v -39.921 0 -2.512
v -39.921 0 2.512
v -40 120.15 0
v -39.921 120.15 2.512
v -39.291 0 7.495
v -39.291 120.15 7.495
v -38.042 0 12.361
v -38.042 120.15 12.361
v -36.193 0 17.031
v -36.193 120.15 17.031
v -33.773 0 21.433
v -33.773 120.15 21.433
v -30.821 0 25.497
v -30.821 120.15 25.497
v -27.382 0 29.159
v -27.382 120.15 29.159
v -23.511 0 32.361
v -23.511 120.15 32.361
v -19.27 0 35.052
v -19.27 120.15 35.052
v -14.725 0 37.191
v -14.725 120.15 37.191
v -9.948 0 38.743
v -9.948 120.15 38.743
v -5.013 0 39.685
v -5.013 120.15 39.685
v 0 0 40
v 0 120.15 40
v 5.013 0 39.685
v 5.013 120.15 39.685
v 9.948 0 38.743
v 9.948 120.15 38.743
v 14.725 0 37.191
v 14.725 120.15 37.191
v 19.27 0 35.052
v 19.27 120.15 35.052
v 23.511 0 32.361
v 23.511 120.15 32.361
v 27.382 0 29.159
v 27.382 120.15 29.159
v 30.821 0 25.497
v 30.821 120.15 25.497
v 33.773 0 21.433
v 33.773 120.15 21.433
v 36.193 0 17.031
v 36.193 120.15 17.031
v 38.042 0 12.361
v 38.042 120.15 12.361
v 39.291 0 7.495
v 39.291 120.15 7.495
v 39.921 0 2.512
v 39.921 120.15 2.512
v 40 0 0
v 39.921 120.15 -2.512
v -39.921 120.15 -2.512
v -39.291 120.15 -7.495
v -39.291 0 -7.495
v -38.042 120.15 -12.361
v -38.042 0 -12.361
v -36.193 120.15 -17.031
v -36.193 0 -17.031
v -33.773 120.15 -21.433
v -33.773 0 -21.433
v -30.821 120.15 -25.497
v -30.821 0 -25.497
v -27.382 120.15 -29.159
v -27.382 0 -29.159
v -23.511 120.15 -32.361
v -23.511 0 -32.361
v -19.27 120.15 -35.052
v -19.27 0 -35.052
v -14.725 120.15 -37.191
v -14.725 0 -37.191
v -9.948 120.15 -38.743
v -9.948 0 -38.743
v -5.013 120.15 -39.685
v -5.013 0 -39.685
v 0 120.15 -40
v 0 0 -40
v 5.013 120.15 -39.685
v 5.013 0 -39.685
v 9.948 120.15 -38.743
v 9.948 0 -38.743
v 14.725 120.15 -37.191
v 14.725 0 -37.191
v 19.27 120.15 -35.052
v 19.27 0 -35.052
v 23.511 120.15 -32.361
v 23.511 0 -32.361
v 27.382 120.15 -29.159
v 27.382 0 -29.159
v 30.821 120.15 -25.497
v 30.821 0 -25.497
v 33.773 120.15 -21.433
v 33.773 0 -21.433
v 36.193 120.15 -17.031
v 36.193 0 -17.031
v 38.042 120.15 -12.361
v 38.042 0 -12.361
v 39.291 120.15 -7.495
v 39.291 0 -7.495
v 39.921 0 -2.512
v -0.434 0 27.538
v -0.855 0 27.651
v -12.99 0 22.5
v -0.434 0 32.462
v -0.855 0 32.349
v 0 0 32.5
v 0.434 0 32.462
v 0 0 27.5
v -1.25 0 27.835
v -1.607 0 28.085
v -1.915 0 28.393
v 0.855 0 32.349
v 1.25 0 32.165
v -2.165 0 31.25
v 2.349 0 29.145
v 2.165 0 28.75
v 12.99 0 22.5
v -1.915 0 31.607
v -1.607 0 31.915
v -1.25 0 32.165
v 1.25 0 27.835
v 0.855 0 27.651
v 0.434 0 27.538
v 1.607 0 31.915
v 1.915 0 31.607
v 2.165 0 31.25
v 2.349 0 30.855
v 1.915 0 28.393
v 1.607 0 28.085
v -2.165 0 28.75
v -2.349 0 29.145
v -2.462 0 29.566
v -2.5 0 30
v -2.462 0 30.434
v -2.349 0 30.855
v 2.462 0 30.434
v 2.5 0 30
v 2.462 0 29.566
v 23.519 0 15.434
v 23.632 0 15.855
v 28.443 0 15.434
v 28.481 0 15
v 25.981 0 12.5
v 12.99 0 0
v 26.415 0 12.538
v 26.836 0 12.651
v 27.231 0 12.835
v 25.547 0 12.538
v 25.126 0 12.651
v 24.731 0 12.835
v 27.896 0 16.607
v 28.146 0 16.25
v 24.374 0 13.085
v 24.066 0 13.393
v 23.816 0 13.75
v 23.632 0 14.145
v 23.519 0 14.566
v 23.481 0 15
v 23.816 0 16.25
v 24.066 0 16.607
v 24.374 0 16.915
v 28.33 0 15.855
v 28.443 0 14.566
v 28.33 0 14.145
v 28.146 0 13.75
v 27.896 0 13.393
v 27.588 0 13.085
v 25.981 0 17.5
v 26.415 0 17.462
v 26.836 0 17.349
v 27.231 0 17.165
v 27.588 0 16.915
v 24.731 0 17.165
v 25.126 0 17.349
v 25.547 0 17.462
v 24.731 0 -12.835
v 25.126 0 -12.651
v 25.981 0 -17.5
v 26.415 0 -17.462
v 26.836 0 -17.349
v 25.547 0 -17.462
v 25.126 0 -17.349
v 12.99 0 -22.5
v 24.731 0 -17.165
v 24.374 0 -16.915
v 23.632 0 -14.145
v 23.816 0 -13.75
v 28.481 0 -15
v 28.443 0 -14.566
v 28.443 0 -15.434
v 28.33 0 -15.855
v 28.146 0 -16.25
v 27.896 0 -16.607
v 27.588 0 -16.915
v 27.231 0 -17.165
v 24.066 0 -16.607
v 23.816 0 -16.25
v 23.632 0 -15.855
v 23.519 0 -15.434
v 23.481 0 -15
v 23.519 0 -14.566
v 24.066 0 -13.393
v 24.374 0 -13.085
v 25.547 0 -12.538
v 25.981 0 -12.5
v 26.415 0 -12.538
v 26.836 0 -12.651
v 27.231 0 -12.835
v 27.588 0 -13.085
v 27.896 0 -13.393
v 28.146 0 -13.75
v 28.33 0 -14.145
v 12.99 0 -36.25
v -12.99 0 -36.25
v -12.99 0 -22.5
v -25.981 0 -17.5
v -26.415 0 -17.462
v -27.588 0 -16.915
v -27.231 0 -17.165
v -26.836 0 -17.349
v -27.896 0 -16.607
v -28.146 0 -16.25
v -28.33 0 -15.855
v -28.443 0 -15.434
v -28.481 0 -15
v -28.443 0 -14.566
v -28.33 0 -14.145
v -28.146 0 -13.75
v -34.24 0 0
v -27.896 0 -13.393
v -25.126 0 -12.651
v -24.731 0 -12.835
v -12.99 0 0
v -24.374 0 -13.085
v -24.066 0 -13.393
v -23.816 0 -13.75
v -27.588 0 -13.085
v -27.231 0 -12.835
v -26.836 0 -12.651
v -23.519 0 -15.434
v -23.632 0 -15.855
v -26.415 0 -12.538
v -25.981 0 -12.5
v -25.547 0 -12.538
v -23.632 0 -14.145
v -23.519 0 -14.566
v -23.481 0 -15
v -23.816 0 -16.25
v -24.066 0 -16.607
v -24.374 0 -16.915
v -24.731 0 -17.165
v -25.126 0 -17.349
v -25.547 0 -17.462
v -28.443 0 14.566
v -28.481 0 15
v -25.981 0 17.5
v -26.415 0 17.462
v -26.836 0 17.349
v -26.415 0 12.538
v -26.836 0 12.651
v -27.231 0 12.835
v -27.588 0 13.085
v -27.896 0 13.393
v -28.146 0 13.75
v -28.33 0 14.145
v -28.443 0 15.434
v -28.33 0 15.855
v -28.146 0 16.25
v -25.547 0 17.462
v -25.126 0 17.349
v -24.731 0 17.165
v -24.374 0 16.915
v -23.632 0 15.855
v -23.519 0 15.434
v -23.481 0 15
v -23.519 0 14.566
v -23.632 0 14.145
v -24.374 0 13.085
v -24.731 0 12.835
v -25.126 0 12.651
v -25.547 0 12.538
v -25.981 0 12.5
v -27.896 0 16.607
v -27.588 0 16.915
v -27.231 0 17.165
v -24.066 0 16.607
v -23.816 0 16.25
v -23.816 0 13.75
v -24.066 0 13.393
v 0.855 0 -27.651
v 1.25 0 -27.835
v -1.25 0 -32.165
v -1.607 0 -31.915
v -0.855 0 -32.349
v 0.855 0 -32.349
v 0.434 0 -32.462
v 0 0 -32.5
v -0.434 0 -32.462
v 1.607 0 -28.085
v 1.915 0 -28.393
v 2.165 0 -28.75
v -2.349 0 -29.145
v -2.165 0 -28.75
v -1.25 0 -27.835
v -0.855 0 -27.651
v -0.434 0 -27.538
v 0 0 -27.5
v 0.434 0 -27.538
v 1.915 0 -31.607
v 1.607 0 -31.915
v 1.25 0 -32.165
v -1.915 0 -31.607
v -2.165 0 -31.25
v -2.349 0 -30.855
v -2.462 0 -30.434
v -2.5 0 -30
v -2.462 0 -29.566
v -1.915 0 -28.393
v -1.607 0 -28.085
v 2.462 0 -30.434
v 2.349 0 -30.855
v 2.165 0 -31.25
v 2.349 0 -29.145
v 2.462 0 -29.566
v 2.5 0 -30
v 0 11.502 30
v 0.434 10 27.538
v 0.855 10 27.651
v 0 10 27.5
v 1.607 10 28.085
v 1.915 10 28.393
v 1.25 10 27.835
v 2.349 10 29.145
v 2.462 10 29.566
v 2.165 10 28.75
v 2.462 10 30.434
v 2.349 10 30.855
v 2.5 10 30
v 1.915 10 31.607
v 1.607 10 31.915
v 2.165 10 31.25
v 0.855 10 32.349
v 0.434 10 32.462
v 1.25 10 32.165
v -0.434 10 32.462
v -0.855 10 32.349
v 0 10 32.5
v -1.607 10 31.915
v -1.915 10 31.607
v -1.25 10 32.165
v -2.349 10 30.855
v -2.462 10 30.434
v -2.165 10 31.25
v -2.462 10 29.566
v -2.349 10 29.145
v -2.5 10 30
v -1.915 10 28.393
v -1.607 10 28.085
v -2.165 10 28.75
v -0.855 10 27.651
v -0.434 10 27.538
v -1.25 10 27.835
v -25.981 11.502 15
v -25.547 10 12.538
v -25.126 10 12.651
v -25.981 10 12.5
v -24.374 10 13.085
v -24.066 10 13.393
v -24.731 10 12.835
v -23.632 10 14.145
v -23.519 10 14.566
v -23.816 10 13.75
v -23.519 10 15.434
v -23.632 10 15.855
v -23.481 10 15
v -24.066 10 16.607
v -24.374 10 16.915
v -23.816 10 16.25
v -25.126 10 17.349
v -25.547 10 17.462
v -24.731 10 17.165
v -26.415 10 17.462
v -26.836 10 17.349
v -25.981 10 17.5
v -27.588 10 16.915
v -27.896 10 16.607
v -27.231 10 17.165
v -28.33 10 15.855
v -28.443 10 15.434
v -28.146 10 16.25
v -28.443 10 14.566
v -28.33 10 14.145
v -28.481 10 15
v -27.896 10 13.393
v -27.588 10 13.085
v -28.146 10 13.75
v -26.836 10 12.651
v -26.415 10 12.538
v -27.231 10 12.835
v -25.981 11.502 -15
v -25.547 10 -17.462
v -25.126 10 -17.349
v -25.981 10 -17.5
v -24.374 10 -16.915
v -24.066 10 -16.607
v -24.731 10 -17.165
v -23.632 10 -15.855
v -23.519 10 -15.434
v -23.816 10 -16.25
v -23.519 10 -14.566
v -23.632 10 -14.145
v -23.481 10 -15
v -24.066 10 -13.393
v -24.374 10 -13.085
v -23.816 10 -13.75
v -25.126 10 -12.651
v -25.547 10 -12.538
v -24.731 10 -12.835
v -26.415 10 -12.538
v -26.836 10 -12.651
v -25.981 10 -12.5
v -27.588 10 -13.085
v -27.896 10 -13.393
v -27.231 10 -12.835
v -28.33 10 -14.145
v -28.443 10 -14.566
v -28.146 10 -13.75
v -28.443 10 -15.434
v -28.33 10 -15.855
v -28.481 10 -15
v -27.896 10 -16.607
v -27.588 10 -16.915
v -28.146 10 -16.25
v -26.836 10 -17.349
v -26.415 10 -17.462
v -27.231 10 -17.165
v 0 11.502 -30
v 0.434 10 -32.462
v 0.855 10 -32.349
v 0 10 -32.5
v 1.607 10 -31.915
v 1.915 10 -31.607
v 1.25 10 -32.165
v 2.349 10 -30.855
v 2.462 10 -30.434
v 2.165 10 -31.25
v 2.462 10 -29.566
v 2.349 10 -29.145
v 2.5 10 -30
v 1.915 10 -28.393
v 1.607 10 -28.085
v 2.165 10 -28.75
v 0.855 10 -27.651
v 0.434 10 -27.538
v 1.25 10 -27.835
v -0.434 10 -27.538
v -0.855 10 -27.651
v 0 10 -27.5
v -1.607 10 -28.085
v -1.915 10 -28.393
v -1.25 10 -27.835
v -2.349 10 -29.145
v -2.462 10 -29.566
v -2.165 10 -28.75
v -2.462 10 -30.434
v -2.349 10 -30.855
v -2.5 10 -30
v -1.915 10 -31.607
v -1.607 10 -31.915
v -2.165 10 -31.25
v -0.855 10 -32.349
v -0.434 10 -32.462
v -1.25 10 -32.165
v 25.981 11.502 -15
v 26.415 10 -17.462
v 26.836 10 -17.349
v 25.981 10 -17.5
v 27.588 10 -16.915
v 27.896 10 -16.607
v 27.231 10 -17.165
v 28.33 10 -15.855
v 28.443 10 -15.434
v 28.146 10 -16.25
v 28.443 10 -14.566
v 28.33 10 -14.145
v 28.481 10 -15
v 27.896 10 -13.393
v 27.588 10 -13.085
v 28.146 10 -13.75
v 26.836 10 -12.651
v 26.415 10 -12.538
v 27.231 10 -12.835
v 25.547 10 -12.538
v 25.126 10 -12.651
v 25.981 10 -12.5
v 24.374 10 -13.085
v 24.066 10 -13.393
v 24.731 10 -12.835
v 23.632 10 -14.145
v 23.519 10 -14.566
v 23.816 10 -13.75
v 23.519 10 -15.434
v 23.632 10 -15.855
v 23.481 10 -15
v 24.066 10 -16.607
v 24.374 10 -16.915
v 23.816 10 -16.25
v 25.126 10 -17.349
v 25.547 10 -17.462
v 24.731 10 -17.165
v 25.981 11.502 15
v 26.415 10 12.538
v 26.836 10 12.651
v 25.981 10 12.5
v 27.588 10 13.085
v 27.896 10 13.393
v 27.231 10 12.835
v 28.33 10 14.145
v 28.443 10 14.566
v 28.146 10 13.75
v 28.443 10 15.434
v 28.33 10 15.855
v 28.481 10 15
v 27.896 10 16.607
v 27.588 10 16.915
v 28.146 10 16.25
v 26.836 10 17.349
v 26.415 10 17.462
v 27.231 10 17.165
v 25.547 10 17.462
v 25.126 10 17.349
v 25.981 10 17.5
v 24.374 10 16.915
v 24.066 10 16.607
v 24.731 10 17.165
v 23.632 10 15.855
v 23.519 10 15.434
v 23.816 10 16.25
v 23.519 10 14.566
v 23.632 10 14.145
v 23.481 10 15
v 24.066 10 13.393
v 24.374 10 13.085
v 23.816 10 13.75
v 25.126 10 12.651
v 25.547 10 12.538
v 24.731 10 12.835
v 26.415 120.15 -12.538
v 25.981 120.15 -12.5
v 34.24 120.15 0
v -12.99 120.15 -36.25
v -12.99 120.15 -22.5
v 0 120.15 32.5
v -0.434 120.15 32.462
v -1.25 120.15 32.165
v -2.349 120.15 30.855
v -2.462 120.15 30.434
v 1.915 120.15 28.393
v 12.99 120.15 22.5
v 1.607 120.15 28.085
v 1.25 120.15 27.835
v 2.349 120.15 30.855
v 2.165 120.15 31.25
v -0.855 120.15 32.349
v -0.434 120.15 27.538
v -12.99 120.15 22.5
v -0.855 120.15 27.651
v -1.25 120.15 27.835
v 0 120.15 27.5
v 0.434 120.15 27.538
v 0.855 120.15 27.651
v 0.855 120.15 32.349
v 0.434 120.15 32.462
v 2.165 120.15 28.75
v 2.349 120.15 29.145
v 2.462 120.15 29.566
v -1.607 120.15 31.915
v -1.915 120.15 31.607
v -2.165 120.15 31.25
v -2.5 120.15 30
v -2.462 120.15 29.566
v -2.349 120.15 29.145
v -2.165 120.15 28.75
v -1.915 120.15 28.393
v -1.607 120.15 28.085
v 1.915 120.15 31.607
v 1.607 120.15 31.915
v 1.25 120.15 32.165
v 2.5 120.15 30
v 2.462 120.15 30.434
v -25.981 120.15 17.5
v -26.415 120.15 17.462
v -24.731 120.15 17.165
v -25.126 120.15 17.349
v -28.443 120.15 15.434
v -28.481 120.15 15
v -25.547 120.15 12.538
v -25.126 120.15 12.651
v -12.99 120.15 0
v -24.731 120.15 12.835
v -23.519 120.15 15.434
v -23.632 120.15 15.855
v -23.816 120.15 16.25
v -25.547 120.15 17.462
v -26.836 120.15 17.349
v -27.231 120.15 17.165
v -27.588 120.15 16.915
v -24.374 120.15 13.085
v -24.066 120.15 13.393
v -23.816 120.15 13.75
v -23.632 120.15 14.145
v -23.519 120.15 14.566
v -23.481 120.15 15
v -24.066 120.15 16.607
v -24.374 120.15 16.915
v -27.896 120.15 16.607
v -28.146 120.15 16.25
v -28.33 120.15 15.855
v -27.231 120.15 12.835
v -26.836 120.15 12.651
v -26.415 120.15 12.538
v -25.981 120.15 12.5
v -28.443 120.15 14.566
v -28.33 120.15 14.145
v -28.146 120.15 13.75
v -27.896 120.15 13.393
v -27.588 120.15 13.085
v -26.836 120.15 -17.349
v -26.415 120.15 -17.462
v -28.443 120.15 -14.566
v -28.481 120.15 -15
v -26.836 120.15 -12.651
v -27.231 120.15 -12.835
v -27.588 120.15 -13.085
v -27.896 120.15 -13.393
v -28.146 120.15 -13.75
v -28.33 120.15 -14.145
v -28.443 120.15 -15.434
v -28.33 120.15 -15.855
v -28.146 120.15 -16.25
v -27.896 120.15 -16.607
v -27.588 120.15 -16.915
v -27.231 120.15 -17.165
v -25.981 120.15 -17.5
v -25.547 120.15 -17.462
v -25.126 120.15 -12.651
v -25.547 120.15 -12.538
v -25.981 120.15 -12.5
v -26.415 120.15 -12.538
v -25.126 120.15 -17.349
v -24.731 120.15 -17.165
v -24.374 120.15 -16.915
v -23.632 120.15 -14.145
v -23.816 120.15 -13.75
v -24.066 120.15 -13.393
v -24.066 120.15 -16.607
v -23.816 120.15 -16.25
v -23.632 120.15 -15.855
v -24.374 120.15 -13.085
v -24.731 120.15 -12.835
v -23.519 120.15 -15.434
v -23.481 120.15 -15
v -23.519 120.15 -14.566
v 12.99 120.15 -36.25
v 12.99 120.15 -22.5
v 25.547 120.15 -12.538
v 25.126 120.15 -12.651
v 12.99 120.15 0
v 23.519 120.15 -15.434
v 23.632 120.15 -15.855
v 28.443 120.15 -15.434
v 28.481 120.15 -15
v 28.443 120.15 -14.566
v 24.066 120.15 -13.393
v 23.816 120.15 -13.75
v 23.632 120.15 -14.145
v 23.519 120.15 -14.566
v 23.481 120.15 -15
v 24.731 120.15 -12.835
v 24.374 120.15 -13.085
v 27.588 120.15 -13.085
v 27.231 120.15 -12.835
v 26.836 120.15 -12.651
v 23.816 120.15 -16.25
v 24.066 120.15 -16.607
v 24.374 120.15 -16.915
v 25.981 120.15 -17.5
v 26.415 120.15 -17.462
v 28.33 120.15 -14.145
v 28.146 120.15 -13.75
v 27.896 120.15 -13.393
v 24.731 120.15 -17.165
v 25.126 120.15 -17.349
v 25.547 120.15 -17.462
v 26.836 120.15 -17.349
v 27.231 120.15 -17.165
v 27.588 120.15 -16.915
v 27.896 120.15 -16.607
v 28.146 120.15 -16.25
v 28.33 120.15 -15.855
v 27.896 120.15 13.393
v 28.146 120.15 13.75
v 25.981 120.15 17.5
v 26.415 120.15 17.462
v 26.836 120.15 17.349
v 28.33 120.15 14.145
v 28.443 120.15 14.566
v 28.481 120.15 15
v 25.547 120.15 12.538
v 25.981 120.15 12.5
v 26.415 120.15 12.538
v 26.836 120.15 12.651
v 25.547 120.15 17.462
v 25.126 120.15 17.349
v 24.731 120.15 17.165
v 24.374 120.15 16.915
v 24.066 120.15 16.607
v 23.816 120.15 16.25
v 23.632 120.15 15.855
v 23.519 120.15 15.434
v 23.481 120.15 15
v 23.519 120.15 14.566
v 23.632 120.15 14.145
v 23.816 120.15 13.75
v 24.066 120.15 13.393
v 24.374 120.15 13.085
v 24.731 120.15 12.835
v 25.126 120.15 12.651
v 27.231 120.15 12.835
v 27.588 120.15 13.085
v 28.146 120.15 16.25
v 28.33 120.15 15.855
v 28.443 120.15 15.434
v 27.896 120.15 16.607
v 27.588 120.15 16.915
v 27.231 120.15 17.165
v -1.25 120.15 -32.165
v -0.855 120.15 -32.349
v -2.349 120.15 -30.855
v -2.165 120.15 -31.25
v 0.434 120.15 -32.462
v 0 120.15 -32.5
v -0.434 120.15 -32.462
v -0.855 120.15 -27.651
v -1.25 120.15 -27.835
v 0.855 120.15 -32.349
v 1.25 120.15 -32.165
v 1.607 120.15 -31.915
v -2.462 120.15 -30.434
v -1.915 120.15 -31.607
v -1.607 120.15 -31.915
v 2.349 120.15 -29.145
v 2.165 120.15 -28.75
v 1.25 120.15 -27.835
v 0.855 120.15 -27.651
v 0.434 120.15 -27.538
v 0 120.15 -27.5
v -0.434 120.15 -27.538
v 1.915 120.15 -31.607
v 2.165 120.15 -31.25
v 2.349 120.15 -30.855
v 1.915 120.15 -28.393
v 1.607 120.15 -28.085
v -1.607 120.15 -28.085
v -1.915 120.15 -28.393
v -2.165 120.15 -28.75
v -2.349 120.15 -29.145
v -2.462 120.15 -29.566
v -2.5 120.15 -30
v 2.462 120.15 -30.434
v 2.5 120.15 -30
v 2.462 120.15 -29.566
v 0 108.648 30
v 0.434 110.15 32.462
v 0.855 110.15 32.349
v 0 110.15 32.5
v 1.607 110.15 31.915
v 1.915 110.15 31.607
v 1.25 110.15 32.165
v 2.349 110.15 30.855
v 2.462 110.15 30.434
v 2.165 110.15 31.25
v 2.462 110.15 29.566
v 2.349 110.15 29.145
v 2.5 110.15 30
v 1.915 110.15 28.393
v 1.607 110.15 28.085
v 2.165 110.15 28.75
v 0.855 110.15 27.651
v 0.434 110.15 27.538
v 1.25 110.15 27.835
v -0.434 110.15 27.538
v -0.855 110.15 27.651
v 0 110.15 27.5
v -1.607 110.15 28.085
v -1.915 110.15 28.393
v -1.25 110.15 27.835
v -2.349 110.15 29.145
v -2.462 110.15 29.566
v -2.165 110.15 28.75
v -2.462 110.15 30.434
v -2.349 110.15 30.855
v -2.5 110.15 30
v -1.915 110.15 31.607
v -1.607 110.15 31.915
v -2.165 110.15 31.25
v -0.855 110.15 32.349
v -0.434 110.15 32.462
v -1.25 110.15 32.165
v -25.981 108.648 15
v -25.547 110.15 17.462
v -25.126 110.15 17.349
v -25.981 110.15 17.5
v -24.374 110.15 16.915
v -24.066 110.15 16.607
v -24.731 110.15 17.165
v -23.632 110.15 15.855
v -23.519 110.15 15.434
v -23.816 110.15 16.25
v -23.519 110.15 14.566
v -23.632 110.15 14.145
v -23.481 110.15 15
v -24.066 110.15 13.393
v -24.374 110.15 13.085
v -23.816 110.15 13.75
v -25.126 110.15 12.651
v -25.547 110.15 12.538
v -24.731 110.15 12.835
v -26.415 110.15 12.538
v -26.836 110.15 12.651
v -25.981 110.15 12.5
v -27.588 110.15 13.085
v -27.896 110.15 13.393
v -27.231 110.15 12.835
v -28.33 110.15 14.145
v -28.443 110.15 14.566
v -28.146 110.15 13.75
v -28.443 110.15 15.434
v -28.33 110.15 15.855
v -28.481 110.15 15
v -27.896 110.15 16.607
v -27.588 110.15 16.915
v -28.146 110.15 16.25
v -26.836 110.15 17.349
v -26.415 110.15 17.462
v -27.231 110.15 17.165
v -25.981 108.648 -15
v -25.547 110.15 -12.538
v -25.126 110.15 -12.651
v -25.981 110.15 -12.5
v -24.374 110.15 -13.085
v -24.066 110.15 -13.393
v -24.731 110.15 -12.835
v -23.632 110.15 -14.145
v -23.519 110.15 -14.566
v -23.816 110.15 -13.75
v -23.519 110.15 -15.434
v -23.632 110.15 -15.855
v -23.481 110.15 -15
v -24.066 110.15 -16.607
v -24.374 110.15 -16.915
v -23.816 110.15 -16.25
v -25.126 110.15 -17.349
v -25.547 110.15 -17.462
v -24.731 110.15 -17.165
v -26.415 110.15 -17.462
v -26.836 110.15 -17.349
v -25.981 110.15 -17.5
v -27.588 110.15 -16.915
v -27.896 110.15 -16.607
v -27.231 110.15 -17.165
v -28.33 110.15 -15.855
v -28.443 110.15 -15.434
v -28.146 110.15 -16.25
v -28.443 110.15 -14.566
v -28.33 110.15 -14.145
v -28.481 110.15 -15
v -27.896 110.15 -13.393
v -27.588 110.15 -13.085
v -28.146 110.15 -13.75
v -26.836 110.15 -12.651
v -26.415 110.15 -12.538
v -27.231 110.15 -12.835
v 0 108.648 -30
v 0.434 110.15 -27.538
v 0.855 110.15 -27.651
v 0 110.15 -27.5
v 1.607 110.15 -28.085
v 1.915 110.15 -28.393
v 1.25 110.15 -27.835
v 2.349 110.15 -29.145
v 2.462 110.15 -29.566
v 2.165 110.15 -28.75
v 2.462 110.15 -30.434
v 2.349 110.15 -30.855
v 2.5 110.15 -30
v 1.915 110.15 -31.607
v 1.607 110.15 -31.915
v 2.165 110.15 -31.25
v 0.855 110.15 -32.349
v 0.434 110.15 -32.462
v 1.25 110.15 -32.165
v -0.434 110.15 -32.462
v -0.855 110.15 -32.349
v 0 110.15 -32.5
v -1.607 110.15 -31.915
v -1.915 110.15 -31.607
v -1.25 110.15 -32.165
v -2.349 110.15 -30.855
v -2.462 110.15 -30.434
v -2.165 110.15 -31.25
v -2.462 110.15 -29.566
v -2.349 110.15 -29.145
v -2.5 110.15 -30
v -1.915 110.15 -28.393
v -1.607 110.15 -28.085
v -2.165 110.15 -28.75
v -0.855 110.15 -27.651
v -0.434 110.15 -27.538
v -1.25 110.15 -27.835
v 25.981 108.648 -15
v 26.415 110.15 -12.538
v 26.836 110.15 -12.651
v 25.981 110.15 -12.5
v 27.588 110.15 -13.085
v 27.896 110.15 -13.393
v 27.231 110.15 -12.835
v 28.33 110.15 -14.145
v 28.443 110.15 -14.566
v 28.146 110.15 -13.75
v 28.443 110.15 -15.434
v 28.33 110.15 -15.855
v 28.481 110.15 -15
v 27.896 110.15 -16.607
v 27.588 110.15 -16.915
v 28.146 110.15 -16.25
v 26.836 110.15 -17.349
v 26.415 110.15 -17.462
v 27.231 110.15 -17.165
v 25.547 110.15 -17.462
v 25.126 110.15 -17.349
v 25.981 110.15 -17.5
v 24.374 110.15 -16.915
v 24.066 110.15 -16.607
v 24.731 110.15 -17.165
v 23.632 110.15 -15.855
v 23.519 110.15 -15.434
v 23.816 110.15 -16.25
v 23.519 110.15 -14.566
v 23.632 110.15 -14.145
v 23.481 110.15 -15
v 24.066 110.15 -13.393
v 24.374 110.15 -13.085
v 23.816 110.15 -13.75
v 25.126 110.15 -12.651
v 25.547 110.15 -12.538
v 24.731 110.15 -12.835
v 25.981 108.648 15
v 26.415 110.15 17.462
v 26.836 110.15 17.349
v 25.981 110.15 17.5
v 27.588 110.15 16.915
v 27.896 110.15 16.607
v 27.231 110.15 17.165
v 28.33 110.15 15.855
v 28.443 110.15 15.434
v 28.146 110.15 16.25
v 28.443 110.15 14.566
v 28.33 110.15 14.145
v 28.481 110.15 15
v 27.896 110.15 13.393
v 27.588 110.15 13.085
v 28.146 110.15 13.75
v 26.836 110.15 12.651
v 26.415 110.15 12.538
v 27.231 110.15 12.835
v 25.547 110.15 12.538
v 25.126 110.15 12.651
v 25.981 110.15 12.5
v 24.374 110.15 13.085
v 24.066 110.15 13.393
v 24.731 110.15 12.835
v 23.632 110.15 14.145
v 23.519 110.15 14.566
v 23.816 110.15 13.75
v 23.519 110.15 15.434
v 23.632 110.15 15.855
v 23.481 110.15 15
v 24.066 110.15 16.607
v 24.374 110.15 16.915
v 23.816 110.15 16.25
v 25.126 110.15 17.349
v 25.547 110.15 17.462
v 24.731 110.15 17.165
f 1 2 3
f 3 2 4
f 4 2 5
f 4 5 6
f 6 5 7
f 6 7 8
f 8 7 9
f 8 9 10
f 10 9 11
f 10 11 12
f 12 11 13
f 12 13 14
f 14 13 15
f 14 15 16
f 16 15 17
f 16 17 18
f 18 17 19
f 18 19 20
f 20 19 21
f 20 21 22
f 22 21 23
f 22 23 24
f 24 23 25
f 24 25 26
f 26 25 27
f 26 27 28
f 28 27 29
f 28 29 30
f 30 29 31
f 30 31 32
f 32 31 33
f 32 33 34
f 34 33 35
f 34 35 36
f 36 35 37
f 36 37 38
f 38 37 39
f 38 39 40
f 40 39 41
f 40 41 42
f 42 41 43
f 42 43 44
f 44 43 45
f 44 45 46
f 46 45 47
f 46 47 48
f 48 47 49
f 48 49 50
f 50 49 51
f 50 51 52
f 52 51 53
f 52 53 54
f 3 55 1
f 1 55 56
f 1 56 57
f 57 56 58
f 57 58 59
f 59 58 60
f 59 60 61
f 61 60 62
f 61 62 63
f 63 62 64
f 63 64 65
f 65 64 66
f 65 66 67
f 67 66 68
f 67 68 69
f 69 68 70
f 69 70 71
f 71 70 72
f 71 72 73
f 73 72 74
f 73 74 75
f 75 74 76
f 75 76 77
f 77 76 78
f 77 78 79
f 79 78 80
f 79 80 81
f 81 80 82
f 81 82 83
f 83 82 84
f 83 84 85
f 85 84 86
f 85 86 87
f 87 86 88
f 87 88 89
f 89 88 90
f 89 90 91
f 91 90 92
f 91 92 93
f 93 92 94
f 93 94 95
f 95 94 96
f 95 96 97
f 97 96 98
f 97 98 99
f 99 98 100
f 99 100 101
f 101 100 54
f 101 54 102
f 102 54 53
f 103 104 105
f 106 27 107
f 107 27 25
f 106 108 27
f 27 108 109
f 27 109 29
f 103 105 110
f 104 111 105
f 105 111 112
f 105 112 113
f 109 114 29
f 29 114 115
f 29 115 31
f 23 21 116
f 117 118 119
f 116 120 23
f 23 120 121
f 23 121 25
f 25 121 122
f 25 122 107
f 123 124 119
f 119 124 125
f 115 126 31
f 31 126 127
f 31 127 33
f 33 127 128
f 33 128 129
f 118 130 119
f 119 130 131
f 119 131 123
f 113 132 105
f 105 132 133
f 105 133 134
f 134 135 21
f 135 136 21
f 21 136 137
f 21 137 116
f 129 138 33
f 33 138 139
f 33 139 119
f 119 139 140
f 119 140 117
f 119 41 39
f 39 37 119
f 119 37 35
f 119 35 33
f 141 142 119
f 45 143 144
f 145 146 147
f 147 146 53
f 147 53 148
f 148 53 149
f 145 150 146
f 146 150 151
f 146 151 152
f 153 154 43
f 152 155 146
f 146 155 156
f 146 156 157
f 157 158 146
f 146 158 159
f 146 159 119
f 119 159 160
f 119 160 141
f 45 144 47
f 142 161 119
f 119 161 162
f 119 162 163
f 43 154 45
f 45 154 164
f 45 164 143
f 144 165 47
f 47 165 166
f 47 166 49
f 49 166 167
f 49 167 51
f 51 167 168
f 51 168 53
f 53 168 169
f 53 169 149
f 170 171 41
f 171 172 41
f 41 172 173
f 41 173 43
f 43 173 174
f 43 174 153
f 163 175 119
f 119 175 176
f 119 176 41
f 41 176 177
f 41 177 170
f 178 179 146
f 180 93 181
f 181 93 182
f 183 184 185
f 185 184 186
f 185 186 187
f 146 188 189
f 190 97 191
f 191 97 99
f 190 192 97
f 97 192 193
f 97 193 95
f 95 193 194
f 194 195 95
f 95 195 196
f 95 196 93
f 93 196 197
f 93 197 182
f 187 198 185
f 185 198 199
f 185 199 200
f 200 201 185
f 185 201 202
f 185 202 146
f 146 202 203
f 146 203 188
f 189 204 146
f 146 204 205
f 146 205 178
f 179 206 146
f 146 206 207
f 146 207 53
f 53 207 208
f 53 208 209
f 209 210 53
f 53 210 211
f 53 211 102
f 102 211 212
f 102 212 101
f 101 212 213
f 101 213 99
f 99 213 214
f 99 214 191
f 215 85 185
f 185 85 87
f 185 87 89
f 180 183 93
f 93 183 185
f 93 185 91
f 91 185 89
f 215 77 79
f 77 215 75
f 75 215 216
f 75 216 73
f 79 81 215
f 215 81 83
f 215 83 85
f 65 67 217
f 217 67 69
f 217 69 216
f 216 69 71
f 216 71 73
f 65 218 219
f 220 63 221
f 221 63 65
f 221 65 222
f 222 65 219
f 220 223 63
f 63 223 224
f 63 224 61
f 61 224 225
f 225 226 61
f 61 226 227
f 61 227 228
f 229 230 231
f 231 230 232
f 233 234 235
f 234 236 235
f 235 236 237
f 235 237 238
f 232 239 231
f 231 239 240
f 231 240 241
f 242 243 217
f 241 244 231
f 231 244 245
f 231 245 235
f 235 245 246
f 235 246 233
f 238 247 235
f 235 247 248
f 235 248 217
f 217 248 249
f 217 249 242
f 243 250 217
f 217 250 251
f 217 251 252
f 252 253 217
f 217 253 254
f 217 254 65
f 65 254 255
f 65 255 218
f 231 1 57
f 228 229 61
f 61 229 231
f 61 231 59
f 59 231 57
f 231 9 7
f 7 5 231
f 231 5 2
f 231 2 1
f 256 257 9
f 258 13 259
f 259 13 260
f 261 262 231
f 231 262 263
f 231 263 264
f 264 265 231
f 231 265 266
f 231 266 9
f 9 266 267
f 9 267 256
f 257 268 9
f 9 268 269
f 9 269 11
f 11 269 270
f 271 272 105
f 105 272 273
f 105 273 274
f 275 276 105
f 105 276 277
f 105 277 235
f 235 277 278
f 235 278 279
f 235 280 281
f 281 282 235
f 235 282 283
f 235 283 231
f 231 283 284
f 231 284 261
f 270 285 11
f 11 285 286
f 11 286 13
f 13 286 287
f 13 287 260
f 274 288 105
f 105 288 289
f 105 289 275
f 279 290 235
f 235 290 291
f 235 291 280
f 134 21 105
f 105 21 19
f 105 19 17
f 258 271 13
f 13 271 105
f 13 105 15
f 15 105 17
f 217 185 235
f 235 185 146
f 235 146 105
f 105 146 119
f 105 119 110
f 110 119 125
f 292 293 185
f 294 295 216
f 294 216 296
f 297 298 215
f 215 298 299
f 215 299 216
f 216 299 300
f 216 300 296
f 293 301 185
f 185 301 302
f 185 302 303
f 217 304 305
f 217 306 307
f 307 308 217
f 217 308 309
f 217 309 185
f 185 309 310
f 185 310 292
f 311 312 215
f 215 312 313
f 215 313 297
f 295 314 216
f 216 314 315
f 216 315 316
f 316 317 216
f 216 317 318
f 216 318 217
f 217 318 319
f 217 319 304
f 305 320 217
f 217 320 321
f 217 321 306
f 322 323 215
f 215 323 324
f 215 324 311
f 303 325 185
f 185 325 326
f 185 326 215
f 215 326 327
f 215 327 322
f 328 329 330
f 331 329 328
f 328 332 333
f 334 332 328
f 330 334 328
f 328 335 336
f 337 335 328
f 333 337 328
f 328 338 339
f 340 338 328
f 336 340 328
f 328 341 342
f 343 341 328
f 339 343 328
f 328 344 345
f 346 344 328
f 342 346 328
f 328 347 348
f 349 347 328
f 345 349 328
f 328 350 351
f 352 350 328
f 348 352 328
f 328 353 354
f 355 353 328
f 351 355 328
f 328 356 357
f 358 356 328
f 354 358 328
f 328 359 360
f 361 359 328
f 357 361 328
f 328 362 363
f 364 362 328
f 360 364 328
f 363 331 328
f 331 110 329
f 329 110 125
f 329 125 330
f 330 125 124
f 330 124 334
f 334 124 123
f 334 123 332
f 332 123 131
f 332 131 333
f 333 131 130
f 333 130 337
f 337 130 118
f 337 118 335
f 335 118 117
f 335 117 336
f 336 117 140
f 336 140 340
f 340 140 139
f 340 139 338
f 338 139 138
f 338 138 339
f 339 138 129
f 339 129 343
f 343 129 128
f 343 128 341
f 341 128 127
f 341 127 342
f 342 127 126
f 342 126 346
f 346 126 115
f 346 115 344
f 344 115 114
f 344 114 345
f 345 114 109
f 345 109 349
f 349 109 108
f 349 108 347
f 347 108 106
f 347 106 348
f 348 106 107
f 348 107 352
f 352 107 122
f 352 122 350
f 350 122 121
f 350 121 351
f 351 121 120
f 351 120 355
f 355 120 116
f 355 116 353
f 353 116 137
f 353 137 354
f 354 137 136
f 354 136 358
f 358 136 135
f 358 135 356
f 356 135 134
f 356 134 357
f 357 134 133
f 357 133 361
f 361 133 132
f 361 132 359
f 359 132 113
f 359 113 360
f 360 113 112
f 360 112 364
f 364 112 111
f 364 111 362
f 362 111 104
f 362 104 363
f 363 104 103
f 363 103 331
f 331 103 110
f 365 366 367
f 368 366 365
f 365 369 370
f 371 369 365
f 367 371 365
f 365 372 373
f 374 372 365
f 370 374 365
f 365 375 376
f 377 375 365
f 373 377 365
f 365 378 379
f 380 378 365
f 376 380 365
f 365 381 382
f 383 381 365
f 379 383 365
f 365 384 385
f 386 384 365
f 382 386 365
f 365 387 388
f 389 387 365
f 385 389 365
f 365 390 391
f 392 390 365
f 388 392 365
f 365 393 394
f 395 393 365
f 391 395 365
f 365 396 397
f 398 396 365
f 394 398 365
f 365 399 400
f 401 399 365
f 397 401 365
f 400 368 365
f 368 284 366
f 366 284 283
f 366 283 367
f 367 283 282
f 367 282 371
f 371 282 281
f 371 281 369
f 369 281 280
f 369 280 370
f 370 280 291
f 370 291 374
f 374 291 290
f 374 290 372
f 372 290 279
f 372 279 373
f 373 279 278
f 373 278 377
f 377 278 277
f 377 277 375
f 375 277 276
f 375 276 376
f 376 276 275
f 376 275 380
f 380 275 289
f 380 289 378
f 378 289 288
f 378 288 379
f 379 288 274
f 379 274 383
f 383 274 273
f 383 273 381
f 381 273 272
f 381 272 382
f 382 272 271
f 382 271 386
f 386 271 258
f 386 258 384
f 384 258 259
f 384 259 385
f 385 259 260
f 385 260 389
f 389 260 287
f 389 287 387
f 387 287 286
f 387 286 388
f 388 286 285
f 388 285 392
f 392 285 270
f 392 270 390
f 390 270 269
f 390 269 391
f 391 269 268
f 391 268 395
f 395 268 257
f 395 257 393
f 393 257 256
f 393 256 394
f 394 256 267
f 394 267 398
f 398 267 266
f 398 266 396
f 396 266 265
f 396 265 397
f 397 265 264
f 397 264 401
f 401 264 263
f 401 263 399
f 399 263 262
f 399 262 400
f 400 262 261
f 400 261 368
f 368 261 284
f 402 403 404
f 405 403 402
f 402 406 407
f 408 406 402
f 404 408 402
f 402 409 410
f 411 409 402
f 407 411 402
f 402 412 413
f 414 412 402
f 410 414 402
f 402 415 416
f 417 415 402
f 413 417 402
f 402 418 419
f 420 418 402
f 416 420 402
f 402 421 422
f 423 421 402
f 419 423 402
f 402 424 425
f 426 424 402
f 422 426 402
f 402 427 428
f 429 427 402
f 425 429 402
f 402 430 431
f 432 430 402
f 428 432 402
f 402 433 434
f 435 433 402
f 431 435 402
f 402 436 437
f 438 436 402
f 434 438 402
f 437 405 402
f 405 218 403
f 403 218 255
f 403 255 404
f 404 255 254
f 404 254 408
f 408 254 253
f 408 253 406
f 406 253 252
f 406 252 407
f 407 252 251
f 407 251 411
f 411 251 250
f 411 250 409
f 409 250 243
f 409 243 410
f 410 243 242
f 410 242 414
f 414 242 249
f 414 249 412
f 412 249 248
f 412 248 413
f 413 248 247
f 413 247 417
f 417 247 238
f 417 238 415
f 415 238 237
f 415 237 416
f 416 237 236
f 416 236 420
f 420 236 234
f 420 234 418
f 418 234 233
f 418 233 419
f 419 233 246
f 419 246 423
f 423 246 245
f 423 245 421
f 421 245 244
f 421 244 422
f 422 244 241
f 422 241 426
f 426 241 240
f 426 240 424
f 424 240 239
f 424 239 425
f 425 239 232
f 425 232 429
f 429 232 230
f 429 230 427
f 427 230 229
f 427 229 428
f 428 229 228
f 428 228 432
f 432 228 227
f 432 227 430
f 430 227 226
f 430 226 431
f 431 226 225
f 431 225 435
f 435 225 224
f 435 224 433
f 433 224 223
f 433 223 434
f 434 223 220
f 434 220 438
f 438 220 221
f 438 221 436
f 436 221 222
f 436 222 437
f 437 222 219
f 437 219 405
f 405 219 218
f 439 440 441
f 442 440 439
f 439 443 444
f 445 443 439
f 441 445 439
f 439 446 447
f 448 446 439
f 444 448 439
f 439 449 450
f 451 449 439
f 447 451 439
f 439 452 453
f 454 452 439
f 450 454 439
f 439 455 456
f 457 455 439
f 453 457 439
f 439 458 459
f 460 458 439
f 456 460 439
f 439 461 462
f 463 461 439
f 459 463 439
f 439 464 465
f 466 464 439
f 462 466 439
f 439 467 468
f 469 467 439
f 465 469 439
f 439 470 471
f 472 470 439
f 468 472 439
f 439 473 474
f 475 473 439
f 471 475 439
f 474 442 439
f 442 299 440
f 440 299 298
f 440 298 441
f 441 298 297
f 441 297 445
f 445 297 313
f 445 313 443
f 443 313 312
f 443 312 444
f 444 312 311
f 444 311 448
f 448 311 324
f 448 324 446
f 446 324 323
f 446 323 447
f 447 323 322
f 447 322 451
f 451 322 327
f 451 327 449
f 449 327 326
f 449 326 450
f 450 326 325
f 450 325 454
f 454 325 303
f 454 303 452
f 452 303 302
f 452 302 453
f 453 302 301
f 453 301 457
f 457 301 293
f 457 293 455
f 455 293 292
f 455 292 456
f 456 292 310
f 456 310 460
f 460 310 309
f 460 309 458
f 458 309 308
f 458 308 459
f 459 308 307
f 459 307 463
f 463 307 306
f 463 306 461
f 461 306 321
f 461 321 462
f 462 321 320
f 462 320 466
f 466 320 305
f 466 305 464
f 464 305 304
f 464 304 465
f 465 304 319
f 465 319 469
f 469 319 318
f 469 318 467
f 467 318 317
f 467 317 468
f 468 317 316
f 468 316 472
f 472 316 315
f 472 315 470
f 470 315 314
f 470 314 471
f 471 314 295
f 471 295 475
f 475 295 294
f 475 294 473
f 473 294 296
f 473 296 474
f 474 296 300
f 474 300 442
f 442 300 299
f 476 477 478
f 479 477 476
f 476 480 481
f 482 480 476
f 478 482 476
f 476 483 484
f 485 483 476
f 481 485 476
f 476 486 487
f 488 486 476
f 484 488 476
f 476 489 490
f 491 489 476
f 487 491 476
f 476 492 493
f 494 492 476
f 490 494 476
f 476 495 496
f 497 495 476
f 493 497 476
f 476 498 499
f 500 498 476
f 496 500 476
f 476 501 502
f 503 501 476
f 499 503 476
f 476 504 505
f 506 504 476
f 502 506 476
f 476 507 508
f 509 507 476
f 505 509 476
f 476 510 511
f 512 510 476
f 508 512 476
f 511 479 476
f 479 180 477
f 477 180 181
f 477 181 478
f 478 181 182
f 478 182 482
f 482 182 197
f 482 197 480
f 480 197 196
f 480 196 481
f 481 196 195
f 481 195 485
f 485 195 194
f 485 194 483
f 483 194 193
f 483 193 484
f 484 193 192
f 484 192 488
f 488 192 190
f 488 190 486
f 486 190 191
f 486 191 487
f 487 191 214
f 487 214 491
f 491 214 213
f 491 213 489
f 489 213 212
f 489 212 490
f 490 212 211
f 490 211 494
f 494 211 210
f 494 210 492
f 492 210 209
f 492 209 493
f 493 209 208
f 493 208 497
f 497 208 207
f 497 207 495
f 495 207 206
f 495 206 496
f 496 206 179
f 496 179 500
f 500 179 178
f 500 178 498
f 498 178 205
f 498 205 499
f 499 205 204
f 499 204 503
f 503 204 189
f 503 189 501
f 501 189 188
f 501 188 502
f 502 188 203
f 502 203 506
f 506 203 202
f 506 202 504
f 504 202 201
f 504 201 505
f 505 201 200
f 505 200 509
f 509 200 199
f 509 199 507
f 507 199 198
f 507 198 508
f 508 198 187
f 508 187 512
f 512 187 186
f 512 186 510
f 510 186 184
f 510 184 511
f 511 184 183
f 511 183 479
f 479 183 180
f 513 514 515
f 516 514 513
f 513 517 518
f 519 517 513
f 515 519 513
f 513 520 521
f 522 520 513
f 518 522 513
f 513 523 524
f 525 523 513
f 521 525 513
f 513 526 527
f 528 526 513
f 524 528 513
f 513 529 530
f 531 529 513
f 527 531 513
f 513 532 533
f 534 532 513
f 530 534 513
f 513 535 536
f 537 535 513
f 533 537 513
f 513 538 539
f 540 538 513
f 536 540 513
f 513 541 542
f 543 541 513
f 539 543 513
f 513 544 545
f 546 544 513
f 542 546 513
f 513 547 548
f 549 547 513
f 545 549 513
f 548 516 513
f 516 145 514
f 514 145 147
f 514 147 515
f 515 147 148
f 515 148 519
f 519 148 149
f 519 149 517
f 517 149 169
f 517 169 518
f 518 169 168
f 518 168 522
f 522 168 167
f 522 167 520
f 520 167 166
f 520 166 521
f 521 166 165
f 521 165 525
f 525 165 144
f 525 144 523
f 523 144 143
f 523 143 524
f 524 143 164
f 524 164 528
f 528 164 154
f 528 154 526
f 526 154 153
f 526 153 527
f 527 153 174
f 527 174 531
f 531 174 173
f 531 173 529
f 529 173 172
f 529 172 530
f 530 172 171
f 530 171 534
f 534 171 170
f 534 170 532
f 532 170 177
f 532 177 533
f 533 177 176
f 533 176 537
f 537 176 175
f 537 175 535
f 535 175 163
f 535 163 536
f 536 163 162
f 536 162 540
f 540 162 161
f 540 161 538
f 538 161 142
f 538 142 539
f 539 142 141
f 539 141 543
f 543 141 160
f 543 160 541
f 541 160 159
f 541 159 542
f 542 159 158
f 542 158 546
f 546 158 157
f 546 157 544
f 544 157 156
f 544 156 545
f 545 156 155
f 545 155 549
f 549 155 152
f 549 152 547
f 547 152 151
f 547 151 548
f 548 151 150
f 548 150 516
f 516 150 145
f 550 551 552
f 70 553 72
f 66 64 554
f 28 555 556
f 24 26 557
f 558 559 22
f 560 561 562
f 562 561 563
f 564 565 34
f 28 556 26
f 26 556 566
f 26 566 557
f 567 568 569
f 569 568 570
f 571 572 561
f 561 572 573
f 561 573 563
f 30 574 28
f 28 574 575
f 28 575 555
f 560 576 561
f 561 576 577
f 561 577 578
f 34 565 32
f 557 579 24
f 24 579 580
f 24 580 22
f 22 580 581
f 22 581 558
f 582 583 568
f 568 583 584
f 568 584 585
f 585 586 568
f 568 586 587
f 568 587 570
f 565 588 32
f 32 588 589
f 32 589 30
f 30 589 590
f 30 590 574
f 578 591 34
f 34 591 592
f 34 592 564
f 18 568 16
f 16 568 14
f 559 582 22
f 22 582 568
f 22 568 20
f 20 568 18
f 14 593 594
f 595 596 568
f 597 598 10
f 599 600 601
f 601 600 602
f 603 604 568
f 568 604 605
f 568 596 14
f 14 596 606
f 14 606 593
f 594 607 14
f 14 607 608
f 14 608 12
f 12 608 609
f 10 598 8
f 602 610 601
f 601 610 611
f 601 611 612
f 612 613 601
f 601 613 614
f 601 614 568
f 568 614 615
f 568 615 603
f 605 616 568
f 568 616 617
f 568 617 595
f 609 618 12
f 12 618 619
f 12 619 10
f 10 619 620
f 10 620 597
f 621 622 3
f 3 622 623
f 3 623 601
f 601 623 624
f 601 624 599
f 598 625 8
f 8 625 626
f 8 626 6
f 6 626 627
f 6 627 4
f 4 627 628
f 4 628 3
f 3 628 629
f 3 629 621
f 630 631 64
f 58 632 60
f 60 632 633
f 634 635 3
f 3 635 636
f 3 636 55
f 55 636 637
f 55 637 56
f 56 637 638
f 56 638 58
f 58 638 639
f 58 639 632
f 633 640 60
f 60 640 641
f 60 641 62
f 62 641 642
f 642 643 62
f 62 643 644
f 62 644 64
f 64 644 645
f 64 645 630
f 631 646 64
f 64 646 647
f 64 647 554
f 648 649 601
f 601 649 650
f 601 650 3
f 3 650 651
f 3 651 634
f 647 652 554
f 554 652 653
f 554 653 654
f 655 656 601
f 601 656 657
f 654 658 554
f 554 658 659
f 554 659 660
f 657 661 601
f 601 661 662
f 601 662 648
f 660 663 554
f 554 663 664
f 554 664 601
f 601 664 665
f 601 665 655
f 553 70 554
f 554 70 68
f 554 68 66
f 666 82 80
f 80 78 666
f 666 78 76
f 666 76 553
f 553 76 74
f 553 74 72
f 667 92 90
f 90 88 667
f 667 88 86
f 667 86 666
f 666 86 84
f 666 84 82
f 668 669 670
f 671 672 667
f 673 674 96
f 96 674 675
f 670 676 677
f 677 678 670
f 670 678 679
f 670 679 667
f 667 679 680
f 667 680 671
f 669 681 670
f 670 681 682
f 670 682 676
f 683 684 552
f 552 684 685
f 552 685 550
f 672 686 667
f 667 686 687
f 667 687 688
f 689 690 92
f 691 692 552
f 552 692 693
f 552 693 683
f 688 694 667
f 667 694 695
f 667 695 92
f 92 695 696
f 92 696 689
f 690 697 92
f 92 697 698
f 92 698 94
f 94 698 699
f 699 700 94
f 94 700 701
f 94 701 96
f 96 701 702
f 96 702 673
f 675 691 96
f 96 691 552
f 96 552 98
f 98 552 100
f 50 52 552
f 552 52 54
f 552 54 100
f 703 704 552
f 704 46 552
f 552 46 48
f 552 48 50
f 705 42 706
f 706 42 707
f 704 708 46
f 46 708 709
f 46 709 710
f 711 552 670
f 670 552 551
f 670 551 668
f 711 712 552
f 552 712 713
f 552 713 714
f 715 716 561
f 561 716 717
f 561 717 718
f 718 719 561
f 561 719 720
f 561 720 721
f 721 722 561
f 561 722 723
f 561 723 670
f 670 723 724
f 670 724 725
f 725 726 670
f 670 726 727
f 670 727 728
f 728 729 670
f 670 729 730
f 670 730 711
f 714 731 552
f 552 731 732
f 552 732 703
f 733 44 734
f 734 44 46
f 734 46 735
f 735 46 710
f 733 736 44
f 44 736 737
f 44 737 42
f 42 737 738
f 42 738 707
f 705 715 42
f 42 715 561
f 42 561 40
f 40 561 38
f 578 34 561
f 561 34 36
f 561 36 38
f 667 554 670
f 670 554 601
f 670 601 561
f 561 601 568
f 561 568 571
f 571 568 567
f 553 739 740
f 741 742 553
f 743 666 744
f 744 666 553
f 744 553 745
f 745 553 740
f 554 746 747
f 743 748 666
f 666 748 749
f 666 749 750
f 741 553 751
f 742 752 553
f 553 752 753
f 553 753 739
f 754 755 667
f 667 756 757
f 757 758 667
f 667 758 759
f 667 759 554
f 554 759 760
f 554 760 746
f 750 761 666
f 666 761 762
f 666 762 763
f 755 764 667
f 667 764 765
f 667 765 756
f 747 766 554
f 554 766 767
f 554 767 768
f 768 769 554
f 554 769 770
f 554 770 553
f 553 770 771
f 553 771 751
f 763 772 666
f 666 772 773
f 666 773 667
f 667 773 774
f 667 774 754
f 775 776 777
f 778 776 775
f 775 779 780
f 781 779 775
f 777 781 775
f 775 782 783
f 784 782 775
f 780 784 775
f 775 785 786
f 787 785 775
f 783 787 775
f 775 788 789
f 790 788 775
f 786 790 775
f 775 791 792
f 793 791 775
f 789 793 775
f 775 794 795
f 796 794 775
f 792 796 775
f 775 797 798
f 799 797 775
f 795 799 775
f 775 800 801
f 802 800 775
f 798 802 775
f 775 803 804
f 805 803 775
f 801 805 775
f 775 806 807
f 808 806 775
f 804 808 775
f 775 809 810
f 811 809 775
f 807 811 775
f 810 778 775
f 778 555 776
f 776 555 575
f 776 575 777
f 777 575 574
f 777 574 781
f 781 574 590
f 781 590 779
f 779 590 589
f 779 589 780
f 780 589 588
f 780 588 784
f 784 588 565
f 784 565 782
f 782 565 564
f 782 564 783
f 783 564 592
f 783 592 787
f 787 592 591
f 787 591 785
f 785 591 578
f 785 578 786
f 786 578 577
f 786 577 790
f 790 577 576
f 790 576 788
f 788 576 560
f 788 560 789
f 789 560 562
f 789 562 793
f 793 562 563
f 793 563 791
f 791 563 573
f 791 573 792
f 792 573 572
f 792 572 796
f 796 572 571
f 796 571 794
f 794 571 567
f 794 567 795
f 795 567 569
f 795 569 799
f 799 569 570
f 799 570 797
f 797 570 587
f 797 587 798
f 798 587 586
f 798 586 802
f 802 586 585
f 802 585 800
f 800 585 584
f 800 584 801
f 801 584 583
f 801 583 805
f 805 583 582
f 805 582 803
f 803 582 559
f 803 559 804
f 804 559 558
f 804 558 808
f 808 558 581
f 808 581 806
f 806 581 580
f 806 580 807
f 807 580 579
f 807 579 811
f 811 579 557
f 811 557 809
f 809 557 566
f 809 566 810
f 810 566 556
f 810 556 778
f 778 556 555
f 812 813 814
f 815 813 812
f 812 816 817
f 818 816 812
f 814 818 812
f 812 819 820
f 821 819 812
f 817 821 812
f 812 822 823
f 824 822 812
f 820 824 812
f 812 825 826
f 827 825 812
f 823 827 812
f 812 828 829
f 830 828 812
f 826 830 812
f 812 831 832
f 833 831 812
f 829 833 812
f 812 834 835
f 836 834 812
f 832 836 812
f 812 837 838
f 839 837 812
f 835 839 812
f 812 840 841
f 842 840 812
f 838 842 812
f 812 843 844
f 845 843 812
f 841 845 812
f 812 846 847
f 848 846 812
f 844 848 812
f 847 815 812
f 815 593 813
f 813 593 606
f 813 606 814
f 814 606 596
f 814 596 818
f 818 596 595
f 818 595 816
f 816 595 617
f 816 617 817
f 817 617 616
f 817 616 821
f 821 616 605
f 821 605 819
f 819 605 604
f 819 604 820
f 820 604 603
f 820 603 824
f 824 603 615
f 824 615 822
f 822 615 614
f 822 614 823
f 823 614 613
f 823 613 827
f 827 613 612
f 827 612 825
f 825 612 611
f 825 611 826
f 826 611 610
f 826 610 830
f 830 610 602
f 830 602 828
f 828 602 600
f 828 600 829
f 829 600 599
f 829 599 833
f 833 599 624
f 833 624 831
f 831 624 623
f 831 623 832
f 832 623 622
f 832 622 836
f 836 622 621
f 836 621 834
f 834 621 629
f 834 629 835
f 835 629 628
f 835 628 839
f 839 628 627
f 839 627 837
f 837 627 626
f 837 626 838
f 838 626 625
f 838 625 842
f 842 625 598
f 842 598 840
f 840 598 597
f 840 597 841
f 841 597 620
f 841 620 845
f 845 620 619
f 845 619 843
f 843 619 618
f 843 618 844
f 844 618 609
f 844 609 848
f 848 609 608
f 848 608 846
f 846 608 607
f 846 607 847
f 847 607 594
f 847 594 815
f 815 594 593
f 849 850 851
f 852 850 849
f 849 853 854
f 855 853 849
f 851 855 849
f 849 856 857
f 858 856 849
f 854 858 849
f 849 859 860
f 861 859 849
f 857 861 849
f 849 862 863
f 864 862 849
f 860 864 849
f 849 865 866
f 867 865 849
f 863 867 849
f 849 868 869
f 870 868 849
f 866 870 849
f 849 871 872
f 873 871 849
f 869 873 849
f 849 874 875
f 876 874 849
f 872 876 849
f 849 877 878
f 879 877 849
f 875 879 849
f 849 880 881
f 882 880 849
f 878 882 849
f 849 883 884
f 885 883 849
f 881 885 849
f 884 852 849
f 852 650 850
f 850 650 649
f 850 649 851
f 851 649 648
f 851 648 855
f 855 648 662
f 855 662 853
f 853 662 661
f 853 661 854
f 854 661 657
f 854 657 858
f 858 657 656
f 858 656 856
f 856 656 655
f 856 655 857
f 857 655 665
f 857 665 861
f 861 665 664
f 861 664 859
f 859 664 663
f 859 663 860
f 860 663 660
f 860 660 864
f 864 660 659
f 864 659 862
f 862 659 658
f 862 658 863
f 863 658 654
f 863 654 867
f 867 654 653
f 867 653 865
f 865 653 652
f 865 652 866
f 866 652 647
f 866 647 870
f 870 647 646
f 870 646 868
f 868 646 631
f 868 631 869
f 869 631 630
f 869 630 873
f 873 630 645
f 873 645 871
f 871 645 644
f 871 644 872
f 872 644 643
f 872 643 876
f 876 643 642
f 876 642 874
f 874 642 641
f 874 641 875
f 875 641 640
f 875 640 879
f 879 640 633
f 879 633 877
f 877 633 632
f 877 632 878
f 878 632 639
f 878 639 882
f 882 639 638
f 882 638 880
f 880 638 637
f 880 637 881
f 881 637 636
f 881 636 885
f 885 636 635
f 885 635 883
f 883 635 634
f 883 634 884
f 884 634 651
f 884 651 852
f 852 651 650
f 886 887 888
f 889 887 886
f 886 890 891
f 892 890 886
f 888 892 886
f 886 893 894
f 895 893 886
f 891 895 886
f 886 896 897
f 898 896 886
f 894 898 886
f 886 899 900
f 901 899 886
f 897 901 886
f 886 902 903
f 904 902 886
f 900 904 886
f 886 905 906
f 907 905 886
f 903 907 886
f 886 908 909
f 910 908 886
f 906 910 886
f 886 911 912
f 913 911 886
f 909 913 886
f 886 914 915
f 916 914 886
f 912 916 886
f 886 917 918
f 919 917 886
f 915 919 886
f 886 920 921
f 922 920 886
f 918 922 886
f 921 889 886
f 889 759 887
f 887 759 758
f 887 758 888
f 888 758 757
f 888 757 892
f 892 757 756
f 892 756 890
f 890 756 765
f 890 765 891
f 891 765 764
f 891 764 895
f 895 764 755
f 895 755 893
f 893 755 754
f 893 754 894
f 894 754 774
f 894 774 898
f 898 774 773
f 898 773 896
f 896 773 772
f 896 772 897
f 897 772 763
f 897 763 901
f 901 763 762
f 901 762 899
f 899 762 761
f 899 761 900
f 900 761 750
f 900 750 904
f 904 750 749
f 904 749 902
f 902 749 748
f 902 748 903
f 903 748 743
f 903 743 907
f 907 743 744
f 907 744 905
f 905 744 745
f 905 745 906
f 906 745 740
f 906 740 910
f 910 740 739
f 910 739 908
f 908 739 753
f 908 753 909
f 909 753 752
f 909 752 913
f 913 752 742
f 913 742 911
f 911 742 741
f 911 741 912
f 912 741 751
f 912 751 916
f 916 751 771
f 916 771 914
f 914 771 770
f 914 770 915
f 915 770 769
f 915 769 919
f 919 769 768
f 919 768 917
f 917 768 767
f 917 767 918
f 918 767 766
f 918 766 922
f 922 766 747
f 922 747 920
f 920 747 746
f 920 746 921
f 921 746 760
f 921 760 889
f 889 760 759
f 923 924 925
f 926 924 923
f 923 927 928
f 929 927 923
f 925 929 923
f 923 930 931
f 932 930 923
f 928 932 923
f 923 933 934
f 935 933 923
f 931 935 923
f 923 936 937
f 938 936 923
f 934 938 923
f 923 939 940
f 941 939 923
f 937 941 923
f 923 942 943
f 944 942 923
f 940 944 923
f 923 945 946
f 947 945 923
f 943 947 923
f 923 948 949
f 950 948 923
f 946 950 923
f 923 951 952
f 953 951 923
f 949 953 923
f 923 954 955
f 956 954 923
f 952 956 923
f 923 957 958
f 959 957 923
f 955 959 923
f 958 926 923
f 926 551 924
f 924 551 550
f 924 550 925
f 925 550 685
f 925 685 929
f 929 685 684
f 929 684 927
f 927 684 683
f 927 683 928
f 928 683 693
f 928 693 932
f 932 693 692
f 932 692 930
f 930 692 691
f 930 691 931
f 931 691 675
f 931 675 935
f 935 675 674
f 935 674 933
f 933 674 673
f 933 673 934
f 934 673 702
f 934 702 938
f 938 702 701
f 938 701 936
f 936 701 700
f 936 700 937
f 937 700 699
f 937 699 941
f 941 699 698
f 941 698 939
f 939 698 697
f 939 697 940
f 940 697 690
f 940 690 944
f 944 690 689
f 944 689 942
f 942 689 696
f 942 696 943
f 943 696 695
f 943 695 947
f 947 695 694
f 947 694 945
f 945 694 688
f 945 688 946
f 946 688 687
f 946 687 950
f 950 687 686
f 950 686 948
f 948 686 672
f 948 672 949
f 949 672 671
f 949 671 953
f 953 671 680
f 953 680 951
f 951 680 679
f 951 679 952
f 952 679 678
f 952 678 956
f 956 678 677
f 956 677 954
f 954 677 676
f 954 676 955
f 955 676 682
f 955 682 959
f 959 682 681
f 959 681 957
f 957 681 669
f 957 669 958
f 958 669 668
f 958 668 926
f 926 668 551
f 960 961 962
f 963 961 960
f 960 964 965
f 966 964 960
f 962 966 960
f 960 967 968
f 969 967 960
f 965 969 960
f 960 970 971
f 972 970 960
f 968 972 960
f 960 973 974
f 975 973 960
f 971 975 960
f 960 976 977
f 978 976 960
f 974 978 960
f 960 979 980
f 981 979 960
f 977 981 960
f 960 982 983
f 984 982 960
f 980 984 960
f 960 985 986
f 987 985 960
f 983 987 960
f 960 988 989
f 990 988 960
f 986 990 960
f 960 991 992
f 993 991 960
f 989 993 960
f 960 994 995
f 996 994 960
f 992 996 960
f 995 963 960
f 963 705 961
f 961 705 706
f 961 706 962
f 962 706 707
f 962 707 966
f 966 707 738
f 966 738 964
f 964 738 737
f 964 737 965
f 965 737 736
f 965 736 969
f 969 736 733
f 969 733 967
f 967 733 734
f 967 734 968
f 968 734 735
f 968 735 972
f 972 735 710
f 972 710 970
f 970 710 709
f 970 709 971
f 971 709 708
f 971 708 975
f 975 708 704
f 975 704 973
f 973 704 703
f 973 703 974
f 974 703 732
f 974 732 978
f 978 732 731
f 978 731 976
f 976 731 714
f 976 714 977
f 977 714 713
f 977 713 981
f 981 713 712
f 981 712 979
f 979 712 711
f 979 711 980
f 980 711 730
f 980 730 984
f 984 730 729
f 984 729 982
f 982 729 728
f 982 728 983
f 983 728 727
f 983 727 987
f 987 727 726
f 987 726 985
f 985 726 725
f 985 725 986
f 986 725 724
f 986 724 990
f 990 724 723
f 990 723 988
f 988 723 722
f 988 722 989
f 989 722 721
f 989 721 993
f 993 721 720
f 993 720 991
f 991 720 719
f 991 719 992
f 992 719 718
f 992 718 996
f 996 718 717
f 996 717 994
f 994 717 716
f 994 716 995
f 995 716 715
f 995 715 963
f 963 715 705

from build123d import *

# Parameters (mm, degrees)
SKETCH1_R                            = 40
BOSS_EXTRUDE1_DEPTH                  = 60.075
TAP_DRILL_FOR_M6X1_0_TAP1_AT_2_COUNT = 2
TAP_DRILL_FOR_M6X1_0_TAP1_AT_2_PITCH = 30
TAP_DRILL_FOR_M6X1_0_TAP1_AT_3_COUNT = 2
TAP_DRILL_FOR_M6X1_0_TAP1_AT_3_PITCH = 51.961524227
TAP_DRILL_FOR_M6X1_0_TAP1_AT_4_COUNT = 2
TAP_DRILL_FOR_M6X1_0_TAP1_AT_4_PITCH = 60
TAP_DRILL_FOR_M6X1_0_TAP1_AT_5_COUNT = 2
TAP_DRILL_FOR_M6X1_0_TAP1_AT_5_PITCH = 51.961524227
TAP_DRILL_FOR_M6X1_0_TAP1_AT_6_COUNT = 2
TAP_DRILL_FOR_M6X1_0_TAP1_AT_6_PITCH = 30


with BuildPart() as part:
    # Sketch1 → Boss-Extrude1 (new body)
    with BuildSketch(Plane(origin=(0, 0, 0), x_dir=(1, 0, 0), z_dir=(0, 1, 0))):
        with Locations(Location((0, 0, 0), (0, 0, 270))):
            Circle(SKETCH1_R)
    boss_extrude1 = extrude(amount=BOSS_EXTRUDE1_DEPTH)

    # Sketch4 → Tap Drill for M6x1.0 Tap1 (revolve, cut)
    with BuildSketch(Plane(origin=(25.980762114, 0, 15), x_dir=(0, 0, -1), z_dir=(1, 0, 0))):
        Polygon((0, 0), (0, 11.502151548), (2.5, 10), (2.5, 0), align=None)
    tap_drill_for_m6x1_0_tap1 = revolve(axis=Axis((25.980762114, -6.35, 15), (0, 1, 0)), mode=Mode.SUBTRACT)

    # Tap Drill for M6x1.0 Tap1 at 2: Tap Drill for M6x1.0 Tap1 ×2
    with Locations(*[(0, 0, -i * TAP_DRILL_FOR_M6X1_0_TAP1_AT_2_PITCH) for i in range(1, TAP_DRILL_FOR_M6X1_0_TAP1_AT_2_COUNT)]):
        add(tap_drill_for_m6x1_0_tap1, mode=Mode.SUBTRACT)

    # Tap Drill for M6x1.0 Tap1 at 3: Tap Drill for M6x1.0 Tap1 ×2
    with Locations(*[Vector(-0.5000000000000001, 0, -0.8660254037844386) * (i * TAP_DRILL_FOR_M6X1_0_TAP1_AT_3_PITCH) for i in range(1, TAP_DRILL_FOR_M6X1_0_TAP1_AT_3_COUNT)]):
        add(tap_drill_for_m6x1_0_tap1, mode=Mode.SUBTRACT)

    # Tap Drill for M6x1.0 Tap1 at 4: Tap Drill for M6x1.0 Tap1 ×2
    with Locations(*[Vector(-0.8660254037844389, 0, -0.4999999999999995) * (i * TAP_DRILL_FOR_M6X1_0_TAP1_AT_4_PITCH) for i in range(1, TAP_DRILL_FOR_M6X1_0_TAP1_AT_4_COUNT)]):
        add(tap_drill_for_m6x1_0_tap1, mode=Mode.SUBTRACT)

    # Tap Drill for M6x1.0 Tap1 at 5: Tap Drill for M6x1.0 Tap1 ×2
    with Locations(*[(-i * TAP_DRILL_FOR_M6X1_0_TAP1_AT_5_PITCH, 0, 0) for i in range(1, TAP_DRILL_FOR_M6X1_0_TAP1_AT_5_COUNT)]):
        add(tap_drill_for_m6x1_0_tap1, mode=Mode.SUBTRACT)

    # Tap Drill for M6x1.0 Tap1 at 6: Tap Drill for M6x1.0 Tap1 ×2
    with Locations(*[Vector(-0.8660254037844386, 0, 0.5000000000000001) * (i * TAP_DRILL_FOR_M6X1_0_TAP1_AT_6_PITCH) for i in range(1, TAP_DRILL_FOR_M6X1_0_TAP1_AT_6_COUNT)]):
        add(tap_drill_for_m6x1_0_tap1, mode=Mode.SUBTRACT)

    # Mirror1: Boss-Extrude1, Tap Drill for M6x1.0 Tap1 across plane
    add(boss_extrude1.mirror(Plane.ZX.offset(60.075)))
    add(tap_drill_for_m6x1_0_tap1.mirror(Plane.ZX.offset(60.075)), mode=Mode.SUBTRACT)

    # Mirror1 copy 1 sketch → Mirror1 copy 1 (revolve, cut)
    with BuildSketch(Plane(origin=(25.980762114, 120.15, -15), x_dir=(0, 0, -1), z_dir=(1, 0, 0))):
        Polygon((0, 0), (0, -11.502151548), (2.5, -10), (2.5, 0), align=None)
    revolve(axis=Axis((25.980762114, 126.5, -15), (0, 1, 0)), mode=Mode.SUBTRACT)

    # Mirror1 copy 2 sketch → Mirror1 copy 2 (revolve, cut)
    with BuildSketch(Plane(origin=(0, 120.15, -30), x_dir=(0, 0, -1), z_dir=(1, 0, 0))):
        Polygon((0, 0), (0, -11.502151548), (2.5, -10), (2.5, 0), align=None)
    revolve(axis=Axis((0, 126.5, -30), (0, 1, 0)), mode=Mode.SUBTRACT)

    # Mirror1 copy 3 sketch → Mirror1 copy 3 (revolve, cut)
    with BuildSketch(Plane(origin=(-25.980762114, 120.15, -15), x_dir=(0, 0, -1), z_dir=(1, 0, 0))):
        Polygon((0, 0), (0, -11.502151548), (2.5, -10), (2.5, 0), align=None)
    revolve(axis=Axis((-25.980762114, 126.5, -15), (0, 1, 0)), mode=Mode.SUBTRACT)

    # Mirror1 copy 4 sketch → Mirror1 copy 4 (revolve, cut)
    with BuildSketch(Plane(origin=(-25.980762114, 120.15, 15), x_dir=(0, 0, -1), z_dir=(1, 0, 0))):
        Polygon((0, 0), (0, -11.502151548), (2.5, -10), (2.5, 0), align=None)
    revolve(axis=Axis((-25.980762114, 126.5, 15), (0, 1, 0)), mode=Mode.SUBTRACT)

    # Mirror1 copy 5 sketch → Mirror1 copy 5 (revolve, cut)
    with BuildSketch(Plane(origin=(0, 120.15, 30), x_dir=(0, 0, -1), z_dir=(1, 0, 0))):
        Polygon((0, 0), (0, -11.502151548), (2.5, -10), (2.5, 0), align=None)
    revolve(axis=Axis((0, 126.5, 30), (0, 1, 0)), mode=Mode.SUBTRACT)


solid = part.part
